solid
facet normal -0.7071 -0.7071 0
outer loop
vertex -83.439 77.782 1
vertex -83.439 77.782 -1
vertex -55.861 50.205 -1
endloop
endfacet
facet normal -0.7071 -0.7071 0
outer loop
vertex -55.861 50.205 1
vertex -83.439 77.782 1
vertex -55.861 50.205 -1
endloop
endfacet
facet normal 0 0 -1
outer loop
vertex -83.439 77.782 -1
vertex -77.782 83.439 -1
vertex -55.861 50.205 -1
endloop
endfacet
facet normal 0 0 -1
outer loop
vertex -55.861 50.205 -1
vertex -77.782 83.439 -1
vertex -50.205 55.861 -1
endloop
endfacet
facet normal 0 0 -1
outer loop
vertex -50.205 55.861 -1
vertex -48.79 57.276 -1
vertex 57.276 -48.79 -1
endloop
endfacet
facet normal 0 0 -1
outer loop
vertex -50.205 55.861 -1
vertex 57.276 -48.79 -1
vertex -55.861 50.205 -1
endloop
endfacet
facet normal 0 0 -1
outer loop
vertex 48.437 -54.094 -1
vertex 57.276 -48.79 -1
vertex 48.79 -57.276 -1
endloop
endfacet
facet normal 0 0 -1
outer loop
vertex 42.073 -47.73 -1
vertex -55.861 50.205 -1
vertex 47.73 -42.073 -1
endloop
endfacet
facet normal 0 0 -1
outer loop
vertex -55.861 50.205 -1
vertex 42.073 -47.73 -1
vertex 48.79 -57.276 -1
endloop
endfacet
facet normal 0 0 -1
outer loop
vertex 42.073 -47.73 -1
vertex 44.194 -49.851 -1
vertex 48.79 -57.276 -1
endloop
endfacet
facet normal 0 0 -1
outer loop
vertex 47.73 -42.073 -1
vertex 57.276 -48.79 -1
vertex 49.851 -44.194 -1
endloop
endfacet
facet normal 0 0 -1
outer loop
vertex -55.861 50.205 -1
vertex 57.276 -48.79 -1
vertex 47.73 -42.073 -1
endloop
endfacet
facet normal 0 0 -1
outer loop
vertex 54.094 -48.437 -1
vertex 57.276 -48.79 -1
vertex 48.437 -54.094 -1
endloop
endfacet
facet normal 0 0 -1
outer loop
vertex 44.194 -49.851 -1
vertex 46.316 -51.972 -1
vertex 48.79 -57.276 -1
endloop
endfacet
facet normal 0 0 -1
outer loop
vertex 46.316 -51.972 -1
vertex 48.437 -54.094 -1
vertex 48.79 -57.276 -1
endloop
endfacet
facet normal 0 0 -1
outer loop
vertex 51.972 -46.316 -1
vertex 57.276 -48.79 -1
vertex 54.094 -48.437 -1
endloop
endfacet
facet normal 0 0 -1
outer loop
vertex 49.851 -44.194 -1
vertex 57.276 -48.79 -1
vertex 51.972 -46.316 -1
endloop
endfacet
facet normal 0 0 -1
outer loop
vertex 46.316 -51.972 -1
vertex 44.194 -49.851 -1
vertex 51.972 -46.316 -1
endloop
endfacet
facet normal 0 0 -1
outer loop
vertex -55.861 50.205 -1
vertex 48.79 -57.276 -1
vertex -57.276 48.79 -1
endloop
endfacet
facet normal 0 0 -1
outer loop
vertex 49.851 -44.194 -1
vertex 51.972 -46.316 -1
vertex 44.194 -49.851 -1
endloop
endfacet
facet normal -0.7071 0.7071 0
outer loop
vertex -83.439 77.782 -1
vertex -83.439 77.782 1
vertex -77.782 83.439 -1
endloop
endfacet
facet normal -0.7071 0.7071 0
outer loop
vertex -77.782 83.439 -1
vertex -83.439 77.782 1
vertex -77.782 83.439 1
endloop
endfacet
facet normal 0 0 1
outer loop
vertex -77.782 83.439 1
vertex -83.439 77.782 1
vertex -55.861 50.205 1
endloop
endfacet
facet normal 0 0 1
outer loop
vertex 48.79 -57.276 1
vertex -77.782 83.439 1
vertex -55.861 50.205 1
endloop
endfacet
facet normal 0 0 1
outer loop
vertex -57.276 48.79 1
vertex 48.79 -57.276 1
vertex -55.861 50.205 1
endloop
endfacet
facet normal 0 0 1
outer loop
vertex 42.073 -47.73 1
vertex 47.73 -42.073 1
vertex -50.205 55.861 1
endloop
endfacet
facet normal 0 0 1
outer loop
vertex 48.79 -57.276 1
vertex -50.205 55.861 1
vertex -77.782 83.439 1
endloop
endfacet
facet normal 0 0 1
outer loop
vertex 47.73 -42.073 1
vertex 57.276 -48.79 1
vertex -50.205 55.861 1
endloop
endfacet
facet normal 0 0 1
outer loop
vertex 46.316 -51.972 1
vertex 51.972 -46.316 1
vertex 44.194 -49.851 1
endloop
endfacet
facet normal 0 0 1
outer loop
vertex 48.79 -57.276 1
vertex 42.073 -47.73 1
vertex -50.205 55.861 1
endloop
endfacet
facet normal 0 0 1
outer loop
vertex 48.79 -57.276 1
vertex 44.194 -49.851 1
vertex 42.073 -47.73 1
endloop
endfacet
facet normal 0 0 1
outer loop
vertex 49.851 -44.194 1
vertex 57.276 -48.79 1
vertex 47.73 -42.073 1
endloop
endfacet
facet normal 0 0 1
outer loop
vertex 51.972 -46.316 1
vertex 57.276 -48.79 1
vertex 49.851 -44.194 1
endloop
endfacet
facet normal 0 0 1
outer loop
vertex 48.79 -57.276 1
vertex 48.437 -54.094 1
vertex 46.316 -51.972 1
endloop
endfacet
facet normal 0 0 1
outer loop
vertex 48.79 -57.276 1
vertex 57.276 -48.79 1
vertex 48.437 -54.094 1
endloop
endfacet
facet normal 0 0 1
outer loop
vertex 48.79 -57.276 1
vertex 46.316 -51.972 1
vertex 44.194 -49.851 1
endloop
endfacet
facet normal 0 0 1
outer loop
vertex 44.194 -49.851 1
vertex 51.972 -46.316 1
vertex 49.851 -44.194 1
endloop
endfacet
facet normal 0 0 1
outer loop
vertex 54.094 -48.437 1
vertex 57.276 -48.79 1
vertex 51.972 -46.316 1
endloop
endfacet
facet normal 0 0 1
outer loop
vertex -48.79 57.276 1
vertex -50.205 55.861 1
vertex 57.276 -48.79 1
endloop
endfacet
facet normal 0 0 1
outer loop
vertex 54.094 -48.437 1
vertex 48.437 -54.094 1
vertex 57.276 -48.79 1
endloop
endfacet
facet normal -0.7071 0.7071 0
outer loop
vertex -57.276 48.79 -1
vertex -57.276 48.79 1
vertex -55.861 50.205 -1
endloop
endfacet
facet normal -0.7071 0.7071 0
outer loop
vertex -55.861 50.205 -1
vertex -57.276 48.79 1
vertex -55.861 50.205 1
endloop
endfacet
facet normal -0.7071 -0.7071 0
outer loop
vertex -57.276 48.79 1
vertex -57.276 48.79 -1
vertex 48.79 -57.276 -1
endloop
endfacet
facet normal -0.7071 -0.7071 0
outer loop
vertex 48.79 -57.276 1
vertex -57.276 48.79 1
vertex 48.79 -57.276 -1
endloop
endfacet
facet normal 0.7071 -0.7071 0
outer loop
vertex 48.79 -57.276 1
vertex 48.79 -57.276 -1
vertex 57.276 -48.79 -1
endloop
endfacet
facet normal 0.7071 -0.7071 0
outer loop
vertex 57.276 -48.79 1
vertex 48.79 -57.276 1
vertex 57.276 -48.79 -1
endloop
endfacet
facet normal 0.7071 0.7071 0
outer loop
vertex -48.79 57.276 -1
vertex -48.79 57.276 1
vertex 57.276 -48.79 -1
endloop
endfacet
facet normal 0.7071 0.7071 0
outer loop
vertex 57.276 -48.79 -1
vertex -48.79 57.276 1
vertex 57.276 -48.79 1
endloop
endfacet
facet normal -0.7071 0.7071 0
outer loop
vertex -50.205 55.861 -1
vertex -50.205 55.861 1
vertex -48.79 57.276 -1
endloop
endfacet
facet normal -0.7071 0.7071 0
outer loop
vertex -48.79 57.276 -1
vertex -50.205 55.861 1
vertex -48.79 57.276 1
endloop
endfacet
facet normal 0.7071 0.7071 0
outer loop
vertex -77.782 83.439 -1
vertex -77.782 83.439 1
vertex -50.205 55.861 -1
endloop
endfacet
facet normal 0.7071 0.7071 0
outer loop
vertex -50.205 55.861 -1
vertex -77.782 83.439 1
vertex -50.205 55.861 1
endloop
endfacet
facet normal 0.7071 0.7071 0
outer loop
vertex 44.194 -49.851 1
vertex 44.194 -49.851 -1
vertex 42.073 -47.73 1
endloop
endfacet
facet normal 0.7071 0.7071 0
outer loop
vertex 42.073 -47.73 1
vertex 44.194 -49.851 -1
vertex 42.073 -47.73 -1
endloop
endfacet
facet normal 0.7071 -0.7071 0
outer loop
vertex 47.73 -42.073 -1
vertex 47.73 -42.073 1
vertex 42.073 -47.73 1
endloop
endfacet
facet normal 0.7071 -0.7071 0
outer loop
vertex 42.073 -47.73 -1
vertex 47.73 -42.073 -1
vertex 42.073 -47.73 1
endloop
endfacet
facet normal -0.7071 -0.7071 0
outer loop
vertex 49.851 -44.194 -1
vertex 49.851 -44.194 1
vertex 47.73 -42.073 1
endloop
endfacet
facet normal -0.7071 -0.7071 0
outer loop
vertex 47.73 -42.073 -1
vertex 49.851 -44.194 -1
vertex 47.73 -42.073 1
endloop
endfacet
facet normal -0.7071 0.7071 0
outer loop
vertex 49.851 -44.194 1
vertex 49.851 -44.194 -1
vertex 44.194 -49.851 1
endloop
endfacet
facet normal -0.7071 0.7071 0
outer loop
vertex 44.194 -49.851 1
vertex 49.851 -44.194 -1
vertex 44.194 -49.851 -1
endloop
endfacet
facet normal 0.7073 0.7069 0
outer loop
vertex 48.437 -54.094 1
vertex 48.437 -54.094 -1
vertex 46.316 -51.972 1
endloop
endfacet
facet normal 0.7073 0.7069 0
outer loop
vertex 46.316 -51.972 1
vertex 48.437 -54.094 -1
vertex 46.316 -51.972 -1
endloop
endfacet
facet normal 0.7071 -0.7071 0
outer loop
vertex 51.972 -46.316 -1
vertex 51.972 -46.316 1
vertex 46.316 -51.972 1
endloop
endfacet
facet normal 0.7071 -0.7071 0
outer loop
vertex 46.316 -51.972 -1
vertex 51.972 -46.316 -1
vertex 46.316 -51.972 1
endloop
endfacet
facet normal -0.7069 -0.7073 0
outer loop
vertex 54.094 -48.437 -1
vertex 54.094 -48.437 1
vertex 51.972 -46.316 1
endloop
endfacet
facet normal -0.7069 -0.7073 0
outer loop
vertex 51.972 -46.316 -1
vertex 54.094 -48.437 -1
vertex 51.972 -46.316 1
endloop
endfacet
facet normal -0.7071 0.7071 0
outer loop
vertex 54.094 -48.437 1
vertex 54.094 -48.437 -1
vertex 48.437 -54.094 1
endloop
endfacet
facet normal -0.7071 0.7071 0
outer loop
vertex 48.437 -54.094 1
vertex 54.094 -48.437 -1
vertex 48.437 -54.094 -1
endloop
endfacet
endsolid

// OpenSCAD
//piece to go around door knob
rotate([0,0,45])
difference(){
cube([12,150,2] , center=true);
translate([0,-65,0]) cube([8,3,4], center=true);
translate([0,-71,0]) cube([8,3,4], center=true);
}
rotate([0,0,45])
difference(){
translate([0,94,0]) cube([8,40,2], center=true);

}
